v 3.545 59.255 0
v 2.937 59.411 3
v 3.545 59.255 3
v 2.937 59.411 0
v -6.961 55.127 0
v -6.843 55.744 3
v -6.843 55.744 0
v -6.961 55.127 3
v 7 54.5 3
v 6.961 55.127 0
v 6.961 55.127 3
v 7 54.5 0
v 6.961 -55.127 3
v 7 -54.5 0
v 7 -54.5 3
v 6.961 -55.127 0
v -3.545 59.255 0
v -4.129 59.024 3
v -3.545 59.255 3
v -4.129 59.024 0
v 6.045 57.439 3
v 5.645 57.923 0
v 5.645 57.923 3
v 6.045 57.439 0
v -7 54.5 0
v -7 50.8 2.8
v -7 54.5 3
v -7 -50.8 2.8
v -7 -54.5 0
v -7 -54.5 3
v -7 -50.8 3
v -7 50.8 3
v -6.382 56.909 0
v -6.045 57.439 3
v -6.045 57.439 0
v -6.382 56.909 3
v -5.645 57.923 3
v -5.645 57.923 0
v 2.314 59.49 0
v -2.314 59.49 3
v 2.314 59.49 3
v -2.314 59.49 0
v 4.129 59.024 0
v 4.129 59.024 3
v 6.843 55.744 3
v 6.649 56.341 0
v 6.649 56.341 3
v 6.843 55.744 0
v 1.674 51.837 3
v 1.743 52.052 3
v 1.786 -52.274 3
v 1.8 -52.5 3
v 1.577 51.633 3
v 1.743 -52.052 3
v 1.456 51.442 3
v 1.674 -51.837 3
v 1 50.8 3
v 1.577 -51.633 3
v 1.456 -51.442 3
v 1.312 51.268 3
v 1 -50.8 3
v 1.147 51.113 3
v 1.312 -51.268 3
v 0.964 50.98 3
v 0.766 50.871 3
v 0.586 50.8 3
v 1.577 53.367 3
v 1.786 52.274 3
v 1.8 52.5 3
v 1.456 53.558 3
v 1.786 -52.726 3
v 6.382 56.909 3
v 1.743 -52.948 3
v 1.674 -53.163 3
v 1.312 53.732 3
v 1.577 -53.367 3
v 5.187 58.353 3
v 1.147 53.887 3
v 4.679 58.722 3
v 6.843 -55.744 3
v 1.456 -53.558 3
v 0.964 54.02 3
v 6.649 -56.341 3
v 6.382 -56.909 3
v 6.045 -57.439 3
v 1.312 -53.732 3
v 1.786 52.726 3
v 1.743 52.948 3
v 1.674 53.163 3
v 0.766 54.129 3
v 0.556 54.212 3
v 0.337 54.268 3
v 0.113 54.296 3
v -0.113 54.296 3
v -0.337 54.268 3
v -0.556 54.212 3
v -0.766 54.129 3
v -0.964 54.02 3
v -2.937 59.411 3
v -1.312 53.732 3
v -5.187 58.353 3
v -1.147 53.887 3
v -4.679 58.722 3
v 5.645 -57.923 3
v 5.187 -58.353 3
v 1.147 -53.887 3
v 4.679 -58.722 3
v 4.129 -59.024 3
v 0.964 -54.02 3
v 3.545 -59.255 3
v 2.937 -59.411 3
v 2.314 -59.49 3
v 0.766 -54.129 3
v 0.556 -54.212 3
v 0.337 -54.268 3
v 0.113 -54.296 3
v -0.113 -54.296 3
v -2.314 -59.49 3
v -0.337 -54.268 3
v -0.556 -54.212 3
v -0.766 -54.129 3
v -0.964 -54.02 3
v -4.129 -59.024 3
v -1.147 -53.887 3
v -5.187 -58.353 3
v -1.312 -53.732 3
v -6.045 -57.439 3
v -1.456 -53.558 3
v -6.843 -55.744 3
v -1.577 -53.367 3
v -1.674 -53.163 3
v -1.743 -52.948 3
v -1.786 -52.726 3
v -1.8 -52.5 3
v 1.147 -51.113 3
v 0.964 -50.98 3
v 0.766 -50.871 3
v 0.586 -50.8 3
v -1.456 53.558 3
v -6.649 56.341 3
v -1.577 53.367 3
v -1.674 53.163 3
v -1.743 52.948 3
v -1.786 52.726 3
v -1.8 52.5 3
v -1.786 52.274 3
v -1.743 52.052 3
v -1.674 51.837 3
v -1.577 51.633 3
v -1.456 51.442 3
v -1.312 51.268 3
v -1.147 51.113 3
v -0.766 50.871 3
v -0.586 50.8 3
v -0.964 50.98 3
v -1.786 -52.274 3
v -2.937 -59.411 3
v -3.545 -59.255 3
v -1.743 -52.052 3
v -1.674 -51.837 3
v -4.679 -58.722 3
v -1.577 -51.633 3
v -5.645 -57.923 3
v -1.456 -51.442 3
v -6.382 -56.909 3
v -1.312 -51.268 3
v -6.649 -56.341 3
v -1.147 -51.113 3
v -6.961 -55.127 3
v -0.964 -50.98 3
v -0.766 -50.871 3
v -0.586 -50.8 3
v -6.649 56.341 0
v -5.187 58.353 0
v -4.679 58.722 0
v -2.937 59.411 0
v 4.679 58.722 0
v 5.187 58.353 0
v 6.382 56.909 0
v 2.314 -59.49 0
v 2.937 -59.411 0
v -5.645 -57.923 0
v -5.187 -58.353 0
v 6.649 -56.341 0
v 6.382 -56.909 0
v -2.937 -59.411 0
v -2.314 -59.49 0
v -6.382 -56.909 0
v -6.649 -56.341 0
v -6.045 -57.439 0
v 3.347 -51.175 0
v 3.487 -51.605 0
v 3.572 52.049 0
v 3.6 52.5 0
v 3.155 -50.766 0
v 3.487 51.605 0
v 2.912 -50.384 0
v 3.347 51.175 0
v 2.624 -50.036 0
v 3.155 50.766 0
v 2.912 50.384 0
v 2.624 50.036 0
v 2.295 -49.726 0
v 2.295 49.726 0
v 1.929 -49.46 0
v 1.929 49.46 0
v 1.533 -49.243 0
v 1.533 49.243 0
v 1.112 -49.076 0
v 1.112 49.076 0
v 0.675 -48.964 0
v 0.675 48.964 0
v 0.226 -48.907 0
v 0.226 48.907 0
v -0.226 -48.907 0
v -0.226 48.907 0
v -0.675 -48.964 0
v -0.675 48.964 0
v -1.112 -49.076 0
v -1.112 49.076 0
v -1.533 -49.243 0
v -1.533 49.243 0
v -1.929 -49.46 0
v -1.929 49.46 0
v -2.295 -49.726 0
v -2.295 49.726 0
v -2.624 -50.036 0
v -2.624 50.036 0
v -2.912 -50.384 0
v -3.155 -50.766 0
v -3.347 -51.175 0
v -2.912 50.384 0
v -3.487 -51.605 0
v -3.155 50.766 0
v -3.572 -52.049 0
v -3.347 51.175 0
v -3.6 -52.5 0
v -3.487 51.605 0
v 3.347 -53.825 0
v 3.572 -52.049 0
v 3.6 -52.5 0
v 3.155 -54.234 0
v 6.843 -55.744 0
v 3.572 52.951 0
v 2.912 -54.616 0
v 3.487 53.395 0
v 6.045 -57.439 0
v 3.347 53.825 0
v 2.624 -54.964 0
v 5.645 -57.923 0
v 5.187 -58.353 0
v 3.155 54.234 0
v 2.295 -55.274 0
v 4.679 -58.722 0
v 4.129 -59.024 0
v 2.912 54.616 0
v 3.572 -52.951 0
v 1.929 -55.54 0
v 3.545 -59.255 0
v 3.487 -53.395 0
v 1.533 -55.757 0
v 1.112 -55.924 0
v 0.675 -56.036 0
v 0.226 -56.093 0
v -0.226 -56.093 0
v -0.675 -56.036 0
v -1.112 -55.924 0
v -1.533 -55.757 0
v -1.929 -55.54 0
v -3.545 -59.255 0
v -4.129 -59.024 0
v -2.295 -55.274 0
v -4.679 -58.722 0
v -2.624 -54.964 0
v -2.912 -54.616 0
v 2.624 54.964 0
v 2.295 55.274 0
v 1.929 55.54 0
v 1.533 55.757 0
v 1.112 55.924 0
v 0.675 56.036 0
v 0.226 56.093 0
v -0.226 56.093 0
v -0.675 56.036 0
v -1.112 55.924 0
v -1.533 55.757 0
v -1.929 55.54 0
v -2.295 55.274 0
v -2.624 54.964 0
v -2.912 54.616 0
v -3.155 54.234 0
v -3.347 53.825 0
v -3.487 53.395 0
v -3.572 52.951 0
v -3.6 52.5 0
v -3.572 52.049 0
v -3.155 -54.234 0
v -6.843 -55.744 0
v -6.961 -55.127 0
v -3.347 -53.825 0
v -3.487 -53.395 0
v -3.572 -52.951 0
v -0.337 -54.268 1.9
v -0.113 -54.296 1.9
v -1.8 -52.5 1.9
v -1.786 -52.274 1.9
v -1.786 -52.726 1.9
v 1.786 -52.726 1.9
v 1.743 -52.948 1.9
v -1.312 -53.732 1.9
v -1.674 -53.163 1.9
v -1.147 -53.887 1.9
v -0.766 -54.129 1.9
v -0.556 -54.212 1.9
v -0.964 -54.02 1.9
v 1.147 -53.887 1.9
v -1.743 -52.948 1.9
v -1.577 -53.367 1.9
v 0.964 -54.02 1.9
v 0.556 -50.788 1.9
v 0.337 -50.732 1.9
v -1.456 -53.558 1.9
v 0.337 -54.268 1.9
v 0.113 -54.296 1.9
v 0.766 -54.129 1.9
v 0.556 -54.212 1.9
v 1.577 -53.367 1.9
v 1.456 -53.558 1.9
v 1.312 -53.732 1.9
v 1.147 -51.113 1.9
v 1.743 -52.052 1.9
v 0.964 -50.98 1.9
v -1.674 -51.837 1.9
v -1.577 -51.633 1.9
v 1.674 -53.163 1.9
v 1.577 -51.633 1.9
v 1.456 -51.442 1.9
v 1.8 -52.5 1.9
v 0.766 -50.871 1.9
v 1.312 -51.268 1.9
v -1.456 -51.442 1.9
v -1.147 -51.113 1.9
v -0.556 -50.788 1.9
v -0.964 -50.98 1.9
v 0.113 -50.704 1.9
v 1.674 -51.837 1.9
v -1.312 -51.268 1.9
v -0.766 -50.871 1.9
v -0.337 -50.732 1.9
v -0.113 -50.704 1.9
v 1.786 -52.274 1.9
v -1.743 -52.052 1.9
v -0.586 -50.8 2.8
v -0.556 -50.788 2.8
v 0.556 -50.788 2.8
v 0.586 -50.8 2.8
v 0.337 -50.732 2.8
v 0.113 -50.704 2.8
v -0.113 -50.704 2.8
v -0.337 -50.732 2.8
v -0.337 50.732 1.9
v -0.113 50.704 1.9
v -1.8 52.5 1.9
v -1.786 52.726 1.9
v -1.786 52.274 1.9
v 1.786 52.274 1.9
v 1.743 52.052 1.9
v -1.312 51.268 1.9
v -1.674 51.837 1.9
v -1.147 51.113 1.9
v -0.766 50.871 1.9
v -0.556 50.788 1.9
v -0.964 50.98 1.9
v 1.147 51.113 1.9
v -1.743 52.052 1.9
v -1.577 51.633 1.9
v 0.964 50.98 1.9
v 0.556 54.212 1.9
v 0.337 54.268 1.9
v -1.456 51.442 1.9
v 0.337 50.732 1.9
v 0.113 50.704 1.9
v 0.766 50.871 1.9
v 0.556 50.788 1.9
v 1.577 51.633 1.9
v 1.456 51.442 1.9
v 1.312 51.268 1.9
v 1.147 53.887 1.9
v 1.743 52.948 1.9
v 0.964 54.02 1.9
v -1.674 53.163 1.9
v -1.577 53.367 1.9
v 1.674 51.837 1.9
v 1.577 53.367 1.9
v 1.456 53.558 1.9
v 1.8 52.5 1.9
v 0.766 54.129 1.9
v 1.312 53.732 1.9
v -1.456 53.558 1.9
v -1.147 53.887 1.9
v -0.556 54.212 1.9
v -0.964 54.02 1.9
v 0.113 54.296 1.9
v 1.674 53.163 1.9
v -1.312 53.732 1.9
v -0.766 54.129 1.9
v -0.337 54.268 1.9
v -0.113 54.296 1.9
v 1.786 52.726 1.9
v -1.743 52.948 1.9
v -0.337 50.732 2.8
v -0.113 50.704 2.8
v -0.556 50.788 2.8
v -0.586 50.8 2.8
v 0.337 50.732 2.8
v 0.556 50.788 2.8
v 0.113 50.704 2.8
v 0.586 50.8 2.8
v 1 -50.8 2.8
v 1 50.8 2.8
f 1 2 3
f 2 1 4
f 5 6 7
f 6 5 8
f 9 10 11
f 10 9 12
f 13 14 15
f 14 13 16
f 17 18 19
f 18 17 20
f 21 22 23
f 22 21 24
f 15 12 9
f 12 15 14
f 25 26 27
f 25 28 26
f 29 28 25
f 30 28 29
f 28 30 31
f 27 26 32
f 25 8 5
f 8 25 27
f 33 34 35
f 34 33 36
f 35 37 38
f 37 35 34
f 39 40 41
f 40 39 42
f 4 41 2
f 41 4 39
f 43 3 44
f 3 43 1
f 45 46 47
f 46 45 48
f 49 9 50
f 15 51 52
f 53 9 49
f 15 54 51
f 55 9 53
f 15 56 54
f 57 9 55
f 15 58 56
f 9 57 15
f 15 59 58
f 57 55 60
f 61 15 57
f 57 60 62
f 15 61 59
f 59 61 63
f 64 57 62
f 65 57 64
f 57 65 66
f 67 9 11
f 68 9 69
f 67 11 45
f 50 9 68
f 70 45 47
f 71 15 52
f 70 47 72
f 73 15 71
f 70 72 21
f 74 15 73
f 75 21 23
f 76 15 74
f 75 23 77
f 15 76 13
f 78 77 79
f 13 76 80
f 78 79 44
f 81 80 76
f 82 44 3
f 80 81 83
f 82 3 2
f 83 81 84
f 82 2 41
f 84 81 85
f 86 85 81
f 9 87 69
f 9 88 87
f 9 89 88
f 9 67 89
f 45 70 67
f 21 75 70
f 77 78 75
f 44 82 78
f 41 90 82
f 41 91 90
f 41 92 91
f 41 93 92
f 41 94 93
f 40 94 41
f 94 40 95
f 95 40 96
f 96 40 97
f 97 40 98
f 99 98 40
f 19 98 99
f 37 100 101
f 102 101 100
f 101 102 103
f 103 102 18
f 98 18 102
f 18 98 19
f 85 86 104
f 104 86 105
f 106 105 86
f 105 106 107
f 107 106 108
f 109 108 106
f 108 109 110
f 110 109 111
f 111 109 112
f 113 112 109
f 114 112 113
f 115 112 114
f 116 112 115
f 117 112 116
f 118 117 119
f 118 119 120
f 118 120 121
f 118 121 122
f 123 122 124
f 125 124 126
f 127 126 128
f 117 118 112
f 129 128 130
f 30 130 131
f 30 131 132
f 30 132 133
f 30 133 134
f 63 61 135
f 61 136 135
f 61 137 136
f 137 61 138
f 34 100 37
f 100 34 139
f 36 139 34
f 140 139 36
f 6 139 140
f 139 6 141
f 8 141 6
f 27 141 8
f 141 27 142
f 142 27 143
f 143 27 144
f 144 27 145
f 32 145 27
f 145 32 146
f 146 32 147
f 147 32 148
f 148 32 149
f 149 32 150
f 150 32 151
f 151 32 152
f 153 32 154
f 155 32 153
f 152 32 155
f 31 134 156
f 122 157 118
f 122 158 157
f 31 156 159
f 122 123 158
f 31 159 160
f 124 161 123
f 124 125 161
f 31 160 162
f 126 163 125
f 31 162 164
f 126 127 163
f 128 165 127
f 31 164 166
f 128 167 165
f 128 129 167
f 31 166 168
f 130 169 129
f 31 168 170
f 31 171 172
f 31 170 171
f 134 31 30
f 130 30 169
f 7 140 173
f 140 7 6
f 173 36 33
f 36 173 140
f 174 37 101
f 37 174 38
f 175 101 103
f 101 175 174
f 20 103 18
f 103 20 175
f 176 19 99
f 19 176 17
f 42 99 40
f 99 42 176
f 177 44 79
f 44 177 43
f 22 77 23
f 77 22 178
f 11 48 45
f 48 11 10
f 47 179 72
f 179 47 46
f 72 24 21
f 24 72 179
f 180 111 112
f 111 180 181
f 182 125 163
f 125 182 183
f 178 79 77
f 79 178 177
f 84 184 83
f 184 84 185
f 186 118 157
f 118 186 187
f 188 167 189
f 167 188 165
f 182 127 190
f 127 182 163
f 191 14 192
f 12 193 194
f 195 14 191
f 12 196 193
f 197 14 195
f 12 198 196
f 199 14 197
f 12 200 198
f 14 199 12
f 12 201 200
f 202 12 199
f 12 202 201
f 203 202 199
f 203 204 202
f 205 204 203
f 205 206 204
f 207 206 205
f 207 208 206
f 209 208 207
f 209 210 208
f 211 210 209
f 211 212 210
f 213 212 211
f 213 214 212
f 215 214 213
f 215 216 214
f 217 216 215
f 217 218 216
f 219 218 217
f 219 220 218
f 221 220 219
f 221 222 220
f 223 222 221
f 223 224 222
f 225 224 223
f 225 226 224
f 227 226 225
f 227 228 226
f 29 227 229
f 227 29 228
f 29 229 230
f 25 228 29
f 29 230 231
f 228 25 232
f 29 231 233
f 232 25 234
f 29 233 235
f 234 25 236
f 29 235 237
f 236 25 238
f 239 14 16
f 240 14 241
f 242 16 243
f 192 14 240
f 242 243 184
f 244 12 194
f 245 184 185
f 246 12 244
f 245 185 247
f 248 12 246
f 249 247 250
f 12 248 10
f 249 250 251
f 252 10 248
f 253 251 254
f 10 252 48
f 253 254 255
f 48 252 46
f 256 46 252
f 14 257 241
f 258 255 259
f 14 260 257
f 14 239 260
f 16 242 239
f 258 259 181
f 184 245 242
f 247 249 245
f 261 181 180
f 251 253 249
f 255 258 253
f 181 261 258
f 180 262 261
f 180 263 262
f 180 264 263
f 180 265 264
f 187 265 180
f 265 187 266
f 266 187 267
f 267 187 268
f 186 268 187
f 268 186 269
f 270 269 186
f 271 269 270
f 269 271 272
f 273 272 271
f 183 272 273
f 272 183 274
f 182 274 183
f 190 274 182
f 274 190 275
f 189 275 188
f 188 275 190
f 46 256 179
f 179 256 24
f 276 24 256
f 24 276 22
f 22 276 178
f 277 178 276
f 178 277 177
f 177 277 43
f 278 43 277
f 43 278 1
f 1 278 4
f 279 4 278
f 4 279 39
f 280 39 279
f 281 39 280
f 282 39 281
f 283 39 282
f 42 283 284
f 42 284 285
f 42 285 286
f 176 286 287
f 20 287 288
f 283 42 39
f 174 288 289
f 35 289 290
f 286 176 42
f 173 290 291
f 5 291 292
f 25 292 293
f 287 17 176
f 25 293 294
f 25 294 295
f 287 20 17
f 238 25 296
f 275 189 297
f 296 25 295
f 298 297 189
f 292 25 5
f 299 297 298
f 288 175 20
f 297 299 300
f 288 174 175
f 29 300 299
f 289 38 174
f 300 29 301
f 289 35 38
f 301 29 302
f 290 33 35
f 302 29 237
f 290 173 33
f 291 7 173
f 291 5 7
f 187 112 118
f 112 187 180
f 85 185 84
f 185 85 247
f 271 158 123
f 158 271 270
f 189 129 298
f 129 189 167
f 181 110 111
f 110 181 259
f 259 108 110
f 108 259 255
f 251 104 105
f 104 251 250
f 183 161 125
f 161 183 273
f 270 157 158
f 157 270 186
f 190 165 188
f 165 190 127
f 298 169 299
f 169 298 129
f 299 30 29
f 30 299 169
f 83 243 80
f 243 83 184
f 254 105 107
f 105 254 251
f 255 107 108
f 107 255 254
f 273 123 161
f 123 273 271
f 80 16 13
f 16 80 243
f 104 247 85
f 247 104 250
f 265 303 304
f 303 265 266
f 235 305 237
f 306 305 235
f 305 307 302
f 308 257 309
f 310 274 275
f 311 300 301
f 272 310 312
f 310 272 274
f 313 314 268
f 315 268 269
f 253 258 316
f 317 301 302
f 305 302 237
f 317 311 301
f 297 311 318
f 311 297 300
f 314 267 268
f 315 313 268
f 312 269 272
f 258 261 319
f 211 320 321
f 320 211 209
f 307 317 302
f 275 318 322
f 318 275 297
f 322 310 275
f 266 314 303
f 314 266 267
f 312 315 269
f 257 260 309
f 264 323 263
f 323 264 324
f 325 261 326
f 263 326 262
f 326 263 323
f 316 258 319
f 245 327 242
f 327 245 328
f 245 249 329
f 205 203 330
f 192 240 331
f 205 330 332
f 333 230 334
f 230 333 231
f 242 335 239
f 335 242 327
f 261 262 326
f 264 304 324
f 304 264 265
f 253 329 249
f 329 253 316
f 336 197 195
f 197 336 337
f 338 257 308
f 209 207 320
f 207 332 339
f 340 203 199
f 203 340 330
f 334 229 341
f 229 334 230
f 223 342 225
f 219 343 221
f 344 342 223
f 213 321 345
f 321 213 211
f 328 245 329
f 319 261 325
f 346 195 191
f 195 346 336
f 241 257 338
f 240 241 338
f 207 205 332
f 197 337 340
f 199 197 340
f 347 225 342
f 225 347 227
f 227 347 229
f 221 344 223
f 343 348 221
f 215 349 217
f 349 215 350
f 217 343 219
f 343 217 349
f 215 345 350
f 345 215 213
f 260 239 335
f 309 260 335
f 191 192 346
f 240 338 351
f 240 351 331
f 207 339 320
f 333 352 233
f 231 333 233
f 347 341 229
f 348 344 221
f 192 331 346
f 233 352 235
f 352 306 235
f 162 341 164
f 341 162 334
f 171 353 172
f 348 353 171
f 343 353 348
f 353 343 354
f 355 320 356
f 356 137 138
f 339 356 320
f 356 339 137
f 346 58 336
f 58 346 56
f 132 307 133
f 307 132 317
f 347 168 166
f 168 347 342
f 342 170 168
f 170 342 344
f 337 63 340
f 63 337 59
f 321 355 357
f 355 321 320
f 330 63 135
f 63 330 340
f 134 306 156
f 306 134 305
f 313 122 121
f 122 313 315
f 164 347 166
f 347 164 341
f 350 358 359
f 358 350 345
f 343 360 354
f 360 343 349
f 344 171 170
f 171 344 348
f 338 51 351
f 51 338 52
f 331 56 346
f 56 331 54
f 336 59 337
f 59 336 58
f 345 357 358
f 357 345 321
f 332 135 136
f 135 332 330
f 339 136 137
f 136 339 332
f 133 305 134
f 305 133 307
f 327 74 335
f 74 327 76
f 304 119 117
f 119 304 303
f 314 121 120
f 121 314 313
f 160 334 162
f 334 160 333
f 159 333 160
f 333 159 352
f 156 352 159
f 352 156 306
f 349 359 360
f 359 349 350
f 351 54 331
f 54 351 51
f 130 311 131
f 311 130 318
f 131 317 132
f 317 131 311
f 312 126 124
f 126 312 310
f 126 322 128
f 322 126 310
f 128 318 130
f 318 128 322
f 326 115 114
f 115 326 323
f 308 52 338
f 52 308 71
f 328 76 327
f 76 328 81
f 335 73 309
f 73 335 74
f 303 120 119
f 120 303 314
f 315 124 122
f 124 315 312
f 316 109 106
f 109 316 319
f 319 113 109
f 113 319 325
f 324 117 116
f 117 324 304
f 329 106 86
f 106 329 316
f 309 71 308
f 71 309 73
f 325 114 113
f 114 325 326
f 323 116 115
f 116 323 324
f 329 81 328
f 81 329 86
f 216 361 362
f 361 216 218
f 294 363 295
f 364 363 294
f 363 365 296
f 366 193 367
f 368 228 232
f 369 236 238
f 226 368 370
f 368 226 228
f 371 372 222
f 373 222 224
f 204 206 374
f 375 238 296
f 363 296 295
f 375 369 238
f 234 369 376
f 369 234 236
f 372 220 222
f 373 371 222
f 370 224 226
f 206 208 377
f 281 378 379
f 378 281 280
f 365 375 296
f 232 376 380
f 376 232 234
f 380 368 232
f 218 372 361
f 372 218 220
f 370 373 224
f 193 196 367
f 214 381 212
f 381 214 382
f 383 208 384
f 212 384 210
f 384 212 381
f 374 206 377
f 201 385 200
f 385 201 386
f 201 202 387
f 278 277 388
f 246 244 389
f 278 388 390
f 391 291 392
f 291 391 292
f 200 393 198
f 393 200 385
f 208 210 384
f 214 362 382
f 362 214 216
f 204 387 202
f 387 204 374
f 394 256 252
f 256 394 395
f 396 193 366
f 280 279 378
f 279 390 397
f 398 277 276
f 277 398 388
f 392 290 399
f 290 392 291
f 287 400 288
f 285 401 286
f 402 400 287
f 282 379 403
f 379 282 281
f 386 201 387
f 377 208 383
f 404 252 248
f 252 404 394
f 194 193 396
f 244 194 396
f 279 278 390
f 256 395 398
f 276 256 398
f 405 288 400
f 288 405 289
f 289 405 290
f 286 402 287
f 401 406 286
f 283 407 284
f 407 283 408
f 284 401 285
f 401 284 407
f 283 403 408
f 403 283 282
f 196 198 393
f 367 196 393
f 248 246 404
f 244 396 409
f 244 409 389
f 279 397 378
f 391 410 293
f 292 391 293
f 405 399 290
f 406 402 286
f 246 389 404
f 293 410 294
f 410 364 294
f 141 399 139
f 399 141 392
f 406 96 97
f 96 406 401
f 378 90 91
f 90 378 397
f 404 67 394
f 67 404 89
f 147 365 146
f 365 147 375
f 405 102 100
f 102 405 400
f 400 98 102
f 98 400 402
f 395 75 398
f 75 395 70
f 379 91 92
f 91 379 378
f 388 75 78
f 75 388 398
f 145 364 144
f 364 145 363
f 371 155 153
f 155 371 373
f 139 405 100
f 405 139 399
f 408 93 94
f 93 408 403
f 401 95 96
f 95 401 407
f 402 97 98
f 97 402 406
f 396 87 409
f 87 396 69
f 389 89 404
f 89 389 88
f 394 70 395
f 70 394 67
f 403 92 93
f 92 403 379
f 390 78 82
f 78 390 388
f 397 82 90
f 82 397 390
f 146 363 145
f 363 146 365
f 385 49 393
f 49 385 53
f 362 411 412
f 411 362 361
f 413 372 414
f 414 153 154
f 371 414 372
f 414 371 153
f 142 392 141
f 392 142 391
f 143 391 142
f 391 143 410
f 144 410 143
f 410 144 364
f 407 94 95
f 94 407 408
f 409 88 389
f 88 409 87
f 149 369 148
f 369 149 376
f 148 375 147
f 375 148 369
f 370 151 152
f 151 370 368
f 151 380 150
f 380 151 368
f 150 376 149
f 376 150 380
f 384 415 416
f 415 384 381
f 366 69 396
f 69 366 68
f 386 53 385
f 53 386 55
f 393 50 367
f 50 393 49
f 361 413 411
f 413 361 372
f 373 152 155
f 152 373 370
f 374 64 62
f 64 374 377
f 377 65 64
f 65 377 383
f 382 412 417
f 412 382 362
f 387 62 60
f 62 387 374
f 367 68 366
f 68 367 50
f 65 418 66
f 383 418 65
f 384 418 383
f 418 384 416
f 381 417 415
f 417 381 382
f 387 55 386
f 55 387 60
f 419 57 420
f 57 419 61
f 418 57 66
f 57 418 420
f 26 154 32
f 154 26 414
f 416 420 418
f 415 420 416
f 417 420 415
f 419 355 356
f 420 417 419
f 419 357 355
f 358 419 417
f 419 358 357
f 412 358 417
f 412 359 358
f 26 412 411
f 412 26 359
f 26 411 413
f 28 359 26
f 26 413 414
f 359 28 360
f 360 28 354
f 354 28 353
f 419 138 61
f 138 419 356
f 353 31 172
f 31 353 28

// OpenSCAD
$fn = 50;


difference() {
	union() {
		hull() {
			translate(v = [-2.0000000000, 54.5000000000, 0]) {
				cylinder(h = 3, r = 5);
			}
			translate(v = [2.0000000000, 54.5000000000, 0]) {
				cylinder(h = 3, r = 5);
			}
			translate(v = [-2.0000000000, -54.5000000000, 0]) {
				cylinder(h = 3, r = 5);
			}
			translate(v = [2.0000000000, -54.5000000000, 0]) {
				cylinder(h = 3, r = 5);
			}
		}
		hull() {
			translate(v = [-2.0000000000, 54.5000000000, 0]) {
				cylinder(h = 3, r = 5);
			}
			translate(v = [2.0000000000, 54.5000000000, 0]) {
				cylinder(h = 3, r = 5);
			}
			translate(v = [-2.0000000000, -54.5000000000, 0]) {
				cylinder(h = 3, r = 5);
			}
			translate(v = [2.0000000000, -54.5000000000, 0]) {
				cylinder(h = 3, r = 5);
			}
		}
	}
	union() {
		translate(v = [0, -52.5000000000, 0]) {
			rotate(a = [0, 180, 0]) {
				difference() {
					union() {
						translate(v = [0, 0, -17.0000000000]) {
							rotate(a = [0, 0, 0]) {
								difference() {
									union() {
										#translate(v = [-1.7500000000, -3.2500000000, -0.3000000000]) {
											cube(size = [3.5000000000, 6.5000000000, 0.3000000000]);
										}
										#translate(v = [-1.7500000000, -1.7500000000, -0.6000000000]) {
											cube(size = [3.5000000000, 3.5000000000, 0.3000000000]);
										}
										#translate(v = [-1.7500000000, -3.2500000000, 2.5000000000]) {
											cube(size = [3.5000000000, 6.5000000000, 0.3000000000]);
										}
										#translate(v = [-1.7500000000, -1.7500000000, 2.8000000000]) {
											cube(size = [3.5000000000, 3.5000000000, 0.3000000000]);
										}
										#linear_extrude(height = 2.5000000000) {
											polygon(points = [[3.4620000000, 0.0000000000], [1.7310000000, 2.9981799479], [-1.7310000000, 2.9981799479], [-3.4620000000, 0.0000000000], [-1.7310000000, -2.9981799479], [1.7310000000, -2.9981799479]]);
										}
										#translate(v = [-1.7500000000, -3.2500000000, -0.3000000000]) {
											cube(size = [3.5000000000, 6.5000000000, 0.3000000000]);
										}
										#translate(v = [-1.7500000000, -1.7500000000, -0.6000000000]) {
											cube(size = [3.5000000000, 3.5000000000, 0.3000000000]);
										}
										#translate(v = [-1.7500000000, -3.2500000000, 2.5000000000]) {
											cube(size = [3.5000000000, 6.5000000000, 0.3000000000]);
										}
										#translate(v = [-1.7500000000, -1.7500000000, 2.8000000000]) {
											cube(size = [3.5000000000, 3.5000000000, 0.3000000000]);
										}
										#translate(v = [-1.7500000000, -3.2500000000, -0.3000000000]) {
											cube(size = [3.5000000000, 6.5000000000, 0.3000000000]);
										}
										#translate(v = [-1.7500000000, -1.7500000000, -0.6000000000]) {
											cube(size = [3.5000000000, 3.5000000000, 0.3000000000]);
										}
										#translate(v = [-1.7500000000, -3.2500000000, 2.5000000000]) {
											cube(size = [3.5000000000, 6.5000000000, 0.3000000000]);
										}
										#translate(v = [-1.7500000000, -1.7500000000, 2.8000000000]) {
											cube(size = [3.5000000000, 3.5000000000, 0.3000000000]);
										}
									}
									union();
								}
							}
						}
						translate(v = [0, 0, -17.0000000000]) {
							rotate(a = [0, 0, 0]) {
								difference() {
									union() {
										#translate(v = [-1.7500000000, -3.2500000000, -0.3000000000]) {
											cube(size = [3.5000000000, 6.5000000000, 0.3000000000]);
										}
										#translate(v = [-1.7500000000, -1.7500000000, -0.6000000000]) {
											cube(size = [3.5000000000, 3.5000000000, 0.3000000000]);
										}
										#translate(v = [-1.7500000000, -3.2500000000, 2.5000000000]) {
											cube(size = [3.5000000000, 6.5000000000, 0.3000000000]);
										}
										#translate(v = [-1.7500000000, -1.7500000000, 2.8000000000]) {
											cube(size = [3.5000000000, 3.5000000000, 0.3000000000]);
										}
										#linear_extrude(height = 2.5000000000) {
											polygon(points = [[3.4620000000, 0.0000000000], [1.7310000000, 2.9981799479], [-1.7310000000, 2.9981799479], [-3.4620000000, 0.0000000000], [-1.7310000000, -2.9981799479], [1.7310000000, -2.9981799479]]);
										}
										#translate(v = [-1.7500000000, -3.2500000000, -0.3000000000]) {
											cube(size = [3.5000000000, 6.5000000000, 0.3000000000]);
										}
										#translate(v = [-1.7500000000, -1.7500000000, -0.6000000000]) {
											cube(size = [3.5000000000, 3.5000000000, 0.3000000000]);
										}
										#translate(v = [-1.7500000000, -3.2500000000, 2.5000000000]) {
											cube(size = [3.5000000000, 6.5000000000, 0.3000000000]);
										}
										#translate(v = [-1.7500000000, -1.7500000000, 2.8000000000]) {
											cube(size = [3.5000000000, 3.5000000000, 0.3000000000]);
										}
										#translate(v = [-1.7500000000, -3.2500000000, -0.3000000000]) {
											cube(size = [3.5000000000, 6.5000000000, 0.3000000000]);
										}
										#translate(v = [-1.7500000000, -1.7500000000, -0.6000000000]) {
											cube(size = [3.5000000000, 3.5000000000, 0.3000000000]);
										}
										#translate(v = [-1.7500000000, -3.2500000000, 2.5000000000]) {
											cube(size = [3.5000000000, 6.5000000000, 0.3000000000]);
										}
										#translate(v = [-1.7500000000, -1.7500000000, 2.8000000000]) {
											cube(size = [3.5000000000, 3.5000000000, 0.3000000000]);
										}
									}
									union();
								}
							}
						}
						translate(v = [0, 0, -17.0000000000]) {
							rotate(a = [0, 0, 0]) {
								difference() {
									union() {
										#translate(v = [-1.7500000000, -3.2500000000, -0.3000000000]) {
											cube(size = [3.5000000000, 6.5000000000, 0.3000000000]);
										}
										#translate(v = [-1.7500000000, -1.7500000000, -0.6000000000]) {
											cube(size = [3.5000000000, 3.5000000000, 0.3000000000]);
										}
										#translate(v = [-1.7500000000, -3.2500000000, 2.5000000000]) {
											cube(size = [3.5000000000, 6.5000000000, 0.3000000000]);
										}
										#translate(v = [-1.7500000000, -1.7500000000, 2.8000000000]) {
											cube(size = [3.5000000000, 3.5000000000, 0.3000000000]);
										}
										#linear_extrude(height = 2.5000000000) {
											polygon(points = [[3.4620000000, 0.0000000000], [1.7310000000, 2.9981799479], [-1.7310000000, 2.9981799479], [-3.4620000000, 0.0000000000], [-1.7310000000, -2.9981799479], [1.7310000000, -2.9981799479]]);
										}
										#translate(v = [-1.7500000000, -3.2500000000, -0.3000000000]) {
											cube(size = [3.5000000000, 6.5000000000, 0.3000000000]);
										}
										#translate(v = [-1.7500000000, -1.7500000000, -0.6000000000]) {
											cube(size = [3.5000000000, 3.5000000000, 0.3000000000]);
										}
										#translate(v = [-1.7500000000, -3.2500000000, 2.5000000000]) {
											cube(size = [3.5000000000, 6.5000000000, 0.3000000000]);
										}
										#translate(v = [-1.7500000000, -1.7500000000, 2.8000000000]) {
											cube(size = [3.5000000000, 3.5000000000, 0.3000000000]);
										}
										#translate(v = [-1.7500000000, -3.2500000000, -0.3000000000]) {
											cube(size = [3.5000000000, 6.5000000000, 0.3000000000]);
										}
										#translate(v = [-1.7500000000, -1.7500000000, -0.6000000000]) {
											cube(size = [3.5000000000, 3.5000000000, 0.3000000000]);
										}
										#translate(v = [-1.7500000000, -3.2500000000, 2.5000000000]) {
											cube(size = [3.5000000000, 6.5000000000, 0.3000000000]);
										}
										#translate(v = [-1.7500000000, -1.7500000000, 2.8000000000]) {
											cube(size = [3.5000000000, 3.5000000000, 0.3000000000]);
										}
									}
									union();
								}
							}
						}
						#translate(v = [0, 0, -17.0000000000]) {
							cylinder(h = 17, r = 1.5000000000);
						}
						#translate(v = [0, 0, -1.9000000000]) {
							cylinder(h = 1.9000000000, r1 = 1.8000000000, r2 = 3.6000000000);
						}
						#translate(v = [0, 0, -17.0000000000]) {
							cylinder(h = 17, r = 1.8000000000);
						}
						#translate(v = [0, 0, -17.0000000000]) {
							cylinder(h = 17, r = 1.5000000000);
						}
					}
					union();
				}
			}
		}
		translate(v = [0, 52.5000000000, 0]) {
			rotate(a = [0, 180, 0]) {
				difference() {
					union() {
						translate(v = [0, 0, -17.0000000000]) {
							rotate(a = [0, 0, 0]) {
								difference() {
									union() {
										#translate(v = [-1.7500000000, -3.2500000000, -0.3000000000]) {
											cube(size = [3.5000000000, 6.5000000000, 0.3000000000]);
										}
										#translate(v = [-1.7500000000, -1.7500000000, -0.6000000000]) {
											cube(size = [3.5000000000, 3.5000000000, 0.3000000000]);
										}
										#translate(v = [-1.7500000000, -3.2500000000, 2.5000000000]) {
											cube(size = [3.5000000000, 6.5000000000, 0.3000000000]);
										}
										#translate(v = [-1.7500000000, -1.7500000000, 2.8000000000]) {
											cube(size = [3.5000000000, 3.5000000000, 0.3000000000]);
										}
										#linear_extrude(height = 2.5000000000) {
											polygon(points = [[3.4620000000, 0.0000000000], [1.7310000000, 2.9981799479], [-1.7310000000, 2.9981799479], [-3.4620000000, 0.0000000000], [-1.7310000000, -2.9981799479], [1.7310000000, -2.9981799479]]);
										}
										#translate(v = [-1.7500000000, -3.2500000000, -0.3000000000]) {
											cube(size = [3.5000000000, 6.5000000000, 0.3000000000]);
										}
										#translate(v = [-1.7500000000, -1.7500000000, -0.6000000000]) {
											cube(size = [3.5000000000, 3.5000000000, 0.3000000000]);
										}
										#translate(v = [-1.7500000000, -3.2500000000, 2.5000000000]) {
											cube(size = [3.5000000000, 6.5000000000, 0.3000000000]);
										}
										#translate(v = [-1.7500000000, -1.7500000000, 2.8000000000]) {
											cube(size = [3.5000000000, 3.5000000000, 0.3000000000]);
										}
										#translate(v = [-1.7500000000, -3.2500000000, -0.3000000000]) {
											cube(size = [3.5000000000, 6.5000000000, 0.3000000000]);
										}
										#translate(v = [-1.7500000000, -1.7500000000, -0.6000000000]) {
											cube(size = [3.5000000000, 3.5000000000, 0.3000000000]);
										}
										#translate(v = [-1.7500000000, -3.2500000000, 2.5000000000]) {
											cube(size = [3.5000000000, 6.5000000000, 0.3000000000]);
										}
										#translate(v = [-1.7500000000, -1.7500000000, 2.8000000000]) {
											cube(size = [3.5000000000, 3.5000000000, 0.3000000000]);
										}
									}
									union();
								}
							}
						}
						translate(v = [0, 0, -17.0000000000]) {
							rotate(a = [0, 0, 0]) {
								difference() {
									union() {
										#translate(v = [-1.7500000000, -3.2500000000, -0.3000000000]) {
											cube(size = [3.5000000000, 6.5000000000, 0.3000000000]);
										}
										#translate(v = [-1.7500000000, -1.7500000000, -0.6000000000]) {
											cube(size = [3.5000000000, 3.5000000000, 0.3000000000]);
										}
										#translate(v = [-1.7500000000, -3.2500000000, 2.5000000000]) {
											cube(size = [3.5000000000, 6.5000000000, 0.3000000000]);
										}
										#translate(v = [-1.7500000000, -1.7500000000, 2.8000000000]) {
											cube(size = [3.5000000000, 3.5000000000, 0.3000000000]);
										}
										#linear_extrude(height = 2.5000000000) {
											polygon(points = [[3.4620000000, 0.0000000000], [1.7310000000, 2.9981799479], [-1.7310000000, 2.9981799479], [-3.4620000000, 0.0000000000], [-1.7310000000, -2.9981799479], [1.7310000000, -2.9981799479]]);
										}
										#translate(v = [-1.7500000000, -3.2500000000, -0.3000000000]) {
											cube(size = [3.5000000000, 6.5000000000, 0.3000000000]);
										}
										#translate(v = [-1.7500000000, -1.7500000000, -0.6000000000]) {
											cube(size = [3.5000000000, 3.5000000000, 0.3000000000]);
										}
										#translate(v = [-1.7500000000, -3.2500000000, 2.5000000000]) {
											cube(size = [3.5000000000, 6.5000000000, 0.3000000000]);
										}
										#translate(v = [-1.7500000000, -1.7500000000, 2.8000000000]) {
											cube(size = [3.5000000000, 3.5000000000, 0.3000000000]);
										}
										#translate(v = [-1.7500000000, -3.2500000000, -0.3000000000]) {
											cube(size = [3.5000000000, 6.5000000000, 0.3000000000]);
										}
										#translate(v = [-1.7500000000, -1.7500000000, -0.6000000000]) {
											cube(size = [3.5000000000, 3.5000000000, 0.3000000000]);
										}
										#translate(v = [-1.7500000000, -3.2500000000, 2.5000000000]) {
											cube(size = [3.5000000000, 6.5000000000, 0.3000000000]);
										}
										#translate(v = [-1.7500000000, -1.7500000000, 2.8000000000]) {
											cube(size = [3.5000000000, 3.5000000000, 0.3000000000]);
										}
									}
									union();
								}
							}
						}
						translate(v = [0, 0, -17.0000000000]) {
							rotate(a = [0, 0, 0]) {
								difference() {
									union() {
										#translate(v = [-1.7500000000, -3.2500000000, -0.3000000000]) {
											cube(size = [3.5000000000, 6.5000000000, 0.3000000000]);
										}
										#translate(v = [-1.7500000000, -1.7500000000, -0.6000000000]) {
											cube(size = [3.5000000000, 3.5000000000, 0.3000000000]);
										}
										#translate(v = [-1.7500000000, -3.2500000000, 2.5000000000]) {
											cube(size = [3.5000000000, 6.5000000000, 0.3000000000]);
										}
										#translate(v = [-1.7500000000, -1.7500000000, 2.8000000000]) {
											cube(size = [3.5000000000, 3.5000000000, 0.3000000000]);
										}
										#linear_extrude(height = 2.5000000000) {
											polygon(points = [[3.4620000000, 0.0000000000], [1.7310000000, 2.9981799479], [-1.7310000000, 2.9981799479], [-3.4620000000, 0.0000000000], [-1.7310000000, -2.9981799479], [1.7310000000, -2.9981799479]]);
										}
										#translate(v = [-1.7500000000, -3.2500000000, -0.3000000000]) {
											cube(size = [3.5000000000, 6.5000000000, 0.3000000000]);
										}
										#translate(v = [-1.7500000000, -1.7500000000, -0.6000000000]) {
											cube(size = [3.5000000000, 3.5000000000, 0.3000000000]);
										}
										#translate(v = [-1.7500000000, -3.2500000000, 2.5000000000]) {
											cube(size = [3.5000000000, 6.5000000000, 0.3000000000]);
										}
										#translate(v = [-1.7500000000, -1.7500000000, 2.8000000000]) {
											cube(size = [3.5000000000, 3.5000000000, 0.3000000000]);
										}
										#translate(v = [-1.7500000000, -3.2500000000, -0.3000000000]) {
											cube(size = [3.5000000000, 6.5000000000, 0.3000000000]);
										}
										#translate(v = [-1.7500000000, -1.7500000000, -0.6000000000]) {
											cube(size = [3.5000000000, 3.5000000000, 0.3000000000]);
										}
										#translate(v = [-1.7500000000, -3.2500000000, 2.5000000000]) {
											cube(size = [3.5000000000, 6.5000000000, 0.3000000000]);
										}
										#translate(v = [-1.7500000000, -1.7500000000, 2.8000000000]) {
											cube(size = [3.5000000000, 3.5000000000, 0.3000000000]);
										}
									}
									union();
								}
							}
						}
						#translate(v = [0, 0, -17.0000000000]) {
							cylinder(h = 17, r = 1.5000000000);
						}
						#translate(v = [0, 0, -1.9000000000]) {
							cylinder(h = 1.9000000000, r1 = 1.8000000000, r2 = 3.6000000000);
						}
						#translate(v = [0, 0, -17.0000000000]) {
							cylinder(h = 17, r = 1.8000000000);
						}
						#translate(v = [0, 0, -17.0000000000]) {
							cylinder(h = 17, r = 1.5000000000);
						}
					}
					union();
				}
			}
		}
		#translate(v = [-151.4000000000, -50.8000000000, 2.8000000000]) {
			cube(size = [152.4000000000, 101.6000000000, 0.2000000000]);
		}
	}
}
